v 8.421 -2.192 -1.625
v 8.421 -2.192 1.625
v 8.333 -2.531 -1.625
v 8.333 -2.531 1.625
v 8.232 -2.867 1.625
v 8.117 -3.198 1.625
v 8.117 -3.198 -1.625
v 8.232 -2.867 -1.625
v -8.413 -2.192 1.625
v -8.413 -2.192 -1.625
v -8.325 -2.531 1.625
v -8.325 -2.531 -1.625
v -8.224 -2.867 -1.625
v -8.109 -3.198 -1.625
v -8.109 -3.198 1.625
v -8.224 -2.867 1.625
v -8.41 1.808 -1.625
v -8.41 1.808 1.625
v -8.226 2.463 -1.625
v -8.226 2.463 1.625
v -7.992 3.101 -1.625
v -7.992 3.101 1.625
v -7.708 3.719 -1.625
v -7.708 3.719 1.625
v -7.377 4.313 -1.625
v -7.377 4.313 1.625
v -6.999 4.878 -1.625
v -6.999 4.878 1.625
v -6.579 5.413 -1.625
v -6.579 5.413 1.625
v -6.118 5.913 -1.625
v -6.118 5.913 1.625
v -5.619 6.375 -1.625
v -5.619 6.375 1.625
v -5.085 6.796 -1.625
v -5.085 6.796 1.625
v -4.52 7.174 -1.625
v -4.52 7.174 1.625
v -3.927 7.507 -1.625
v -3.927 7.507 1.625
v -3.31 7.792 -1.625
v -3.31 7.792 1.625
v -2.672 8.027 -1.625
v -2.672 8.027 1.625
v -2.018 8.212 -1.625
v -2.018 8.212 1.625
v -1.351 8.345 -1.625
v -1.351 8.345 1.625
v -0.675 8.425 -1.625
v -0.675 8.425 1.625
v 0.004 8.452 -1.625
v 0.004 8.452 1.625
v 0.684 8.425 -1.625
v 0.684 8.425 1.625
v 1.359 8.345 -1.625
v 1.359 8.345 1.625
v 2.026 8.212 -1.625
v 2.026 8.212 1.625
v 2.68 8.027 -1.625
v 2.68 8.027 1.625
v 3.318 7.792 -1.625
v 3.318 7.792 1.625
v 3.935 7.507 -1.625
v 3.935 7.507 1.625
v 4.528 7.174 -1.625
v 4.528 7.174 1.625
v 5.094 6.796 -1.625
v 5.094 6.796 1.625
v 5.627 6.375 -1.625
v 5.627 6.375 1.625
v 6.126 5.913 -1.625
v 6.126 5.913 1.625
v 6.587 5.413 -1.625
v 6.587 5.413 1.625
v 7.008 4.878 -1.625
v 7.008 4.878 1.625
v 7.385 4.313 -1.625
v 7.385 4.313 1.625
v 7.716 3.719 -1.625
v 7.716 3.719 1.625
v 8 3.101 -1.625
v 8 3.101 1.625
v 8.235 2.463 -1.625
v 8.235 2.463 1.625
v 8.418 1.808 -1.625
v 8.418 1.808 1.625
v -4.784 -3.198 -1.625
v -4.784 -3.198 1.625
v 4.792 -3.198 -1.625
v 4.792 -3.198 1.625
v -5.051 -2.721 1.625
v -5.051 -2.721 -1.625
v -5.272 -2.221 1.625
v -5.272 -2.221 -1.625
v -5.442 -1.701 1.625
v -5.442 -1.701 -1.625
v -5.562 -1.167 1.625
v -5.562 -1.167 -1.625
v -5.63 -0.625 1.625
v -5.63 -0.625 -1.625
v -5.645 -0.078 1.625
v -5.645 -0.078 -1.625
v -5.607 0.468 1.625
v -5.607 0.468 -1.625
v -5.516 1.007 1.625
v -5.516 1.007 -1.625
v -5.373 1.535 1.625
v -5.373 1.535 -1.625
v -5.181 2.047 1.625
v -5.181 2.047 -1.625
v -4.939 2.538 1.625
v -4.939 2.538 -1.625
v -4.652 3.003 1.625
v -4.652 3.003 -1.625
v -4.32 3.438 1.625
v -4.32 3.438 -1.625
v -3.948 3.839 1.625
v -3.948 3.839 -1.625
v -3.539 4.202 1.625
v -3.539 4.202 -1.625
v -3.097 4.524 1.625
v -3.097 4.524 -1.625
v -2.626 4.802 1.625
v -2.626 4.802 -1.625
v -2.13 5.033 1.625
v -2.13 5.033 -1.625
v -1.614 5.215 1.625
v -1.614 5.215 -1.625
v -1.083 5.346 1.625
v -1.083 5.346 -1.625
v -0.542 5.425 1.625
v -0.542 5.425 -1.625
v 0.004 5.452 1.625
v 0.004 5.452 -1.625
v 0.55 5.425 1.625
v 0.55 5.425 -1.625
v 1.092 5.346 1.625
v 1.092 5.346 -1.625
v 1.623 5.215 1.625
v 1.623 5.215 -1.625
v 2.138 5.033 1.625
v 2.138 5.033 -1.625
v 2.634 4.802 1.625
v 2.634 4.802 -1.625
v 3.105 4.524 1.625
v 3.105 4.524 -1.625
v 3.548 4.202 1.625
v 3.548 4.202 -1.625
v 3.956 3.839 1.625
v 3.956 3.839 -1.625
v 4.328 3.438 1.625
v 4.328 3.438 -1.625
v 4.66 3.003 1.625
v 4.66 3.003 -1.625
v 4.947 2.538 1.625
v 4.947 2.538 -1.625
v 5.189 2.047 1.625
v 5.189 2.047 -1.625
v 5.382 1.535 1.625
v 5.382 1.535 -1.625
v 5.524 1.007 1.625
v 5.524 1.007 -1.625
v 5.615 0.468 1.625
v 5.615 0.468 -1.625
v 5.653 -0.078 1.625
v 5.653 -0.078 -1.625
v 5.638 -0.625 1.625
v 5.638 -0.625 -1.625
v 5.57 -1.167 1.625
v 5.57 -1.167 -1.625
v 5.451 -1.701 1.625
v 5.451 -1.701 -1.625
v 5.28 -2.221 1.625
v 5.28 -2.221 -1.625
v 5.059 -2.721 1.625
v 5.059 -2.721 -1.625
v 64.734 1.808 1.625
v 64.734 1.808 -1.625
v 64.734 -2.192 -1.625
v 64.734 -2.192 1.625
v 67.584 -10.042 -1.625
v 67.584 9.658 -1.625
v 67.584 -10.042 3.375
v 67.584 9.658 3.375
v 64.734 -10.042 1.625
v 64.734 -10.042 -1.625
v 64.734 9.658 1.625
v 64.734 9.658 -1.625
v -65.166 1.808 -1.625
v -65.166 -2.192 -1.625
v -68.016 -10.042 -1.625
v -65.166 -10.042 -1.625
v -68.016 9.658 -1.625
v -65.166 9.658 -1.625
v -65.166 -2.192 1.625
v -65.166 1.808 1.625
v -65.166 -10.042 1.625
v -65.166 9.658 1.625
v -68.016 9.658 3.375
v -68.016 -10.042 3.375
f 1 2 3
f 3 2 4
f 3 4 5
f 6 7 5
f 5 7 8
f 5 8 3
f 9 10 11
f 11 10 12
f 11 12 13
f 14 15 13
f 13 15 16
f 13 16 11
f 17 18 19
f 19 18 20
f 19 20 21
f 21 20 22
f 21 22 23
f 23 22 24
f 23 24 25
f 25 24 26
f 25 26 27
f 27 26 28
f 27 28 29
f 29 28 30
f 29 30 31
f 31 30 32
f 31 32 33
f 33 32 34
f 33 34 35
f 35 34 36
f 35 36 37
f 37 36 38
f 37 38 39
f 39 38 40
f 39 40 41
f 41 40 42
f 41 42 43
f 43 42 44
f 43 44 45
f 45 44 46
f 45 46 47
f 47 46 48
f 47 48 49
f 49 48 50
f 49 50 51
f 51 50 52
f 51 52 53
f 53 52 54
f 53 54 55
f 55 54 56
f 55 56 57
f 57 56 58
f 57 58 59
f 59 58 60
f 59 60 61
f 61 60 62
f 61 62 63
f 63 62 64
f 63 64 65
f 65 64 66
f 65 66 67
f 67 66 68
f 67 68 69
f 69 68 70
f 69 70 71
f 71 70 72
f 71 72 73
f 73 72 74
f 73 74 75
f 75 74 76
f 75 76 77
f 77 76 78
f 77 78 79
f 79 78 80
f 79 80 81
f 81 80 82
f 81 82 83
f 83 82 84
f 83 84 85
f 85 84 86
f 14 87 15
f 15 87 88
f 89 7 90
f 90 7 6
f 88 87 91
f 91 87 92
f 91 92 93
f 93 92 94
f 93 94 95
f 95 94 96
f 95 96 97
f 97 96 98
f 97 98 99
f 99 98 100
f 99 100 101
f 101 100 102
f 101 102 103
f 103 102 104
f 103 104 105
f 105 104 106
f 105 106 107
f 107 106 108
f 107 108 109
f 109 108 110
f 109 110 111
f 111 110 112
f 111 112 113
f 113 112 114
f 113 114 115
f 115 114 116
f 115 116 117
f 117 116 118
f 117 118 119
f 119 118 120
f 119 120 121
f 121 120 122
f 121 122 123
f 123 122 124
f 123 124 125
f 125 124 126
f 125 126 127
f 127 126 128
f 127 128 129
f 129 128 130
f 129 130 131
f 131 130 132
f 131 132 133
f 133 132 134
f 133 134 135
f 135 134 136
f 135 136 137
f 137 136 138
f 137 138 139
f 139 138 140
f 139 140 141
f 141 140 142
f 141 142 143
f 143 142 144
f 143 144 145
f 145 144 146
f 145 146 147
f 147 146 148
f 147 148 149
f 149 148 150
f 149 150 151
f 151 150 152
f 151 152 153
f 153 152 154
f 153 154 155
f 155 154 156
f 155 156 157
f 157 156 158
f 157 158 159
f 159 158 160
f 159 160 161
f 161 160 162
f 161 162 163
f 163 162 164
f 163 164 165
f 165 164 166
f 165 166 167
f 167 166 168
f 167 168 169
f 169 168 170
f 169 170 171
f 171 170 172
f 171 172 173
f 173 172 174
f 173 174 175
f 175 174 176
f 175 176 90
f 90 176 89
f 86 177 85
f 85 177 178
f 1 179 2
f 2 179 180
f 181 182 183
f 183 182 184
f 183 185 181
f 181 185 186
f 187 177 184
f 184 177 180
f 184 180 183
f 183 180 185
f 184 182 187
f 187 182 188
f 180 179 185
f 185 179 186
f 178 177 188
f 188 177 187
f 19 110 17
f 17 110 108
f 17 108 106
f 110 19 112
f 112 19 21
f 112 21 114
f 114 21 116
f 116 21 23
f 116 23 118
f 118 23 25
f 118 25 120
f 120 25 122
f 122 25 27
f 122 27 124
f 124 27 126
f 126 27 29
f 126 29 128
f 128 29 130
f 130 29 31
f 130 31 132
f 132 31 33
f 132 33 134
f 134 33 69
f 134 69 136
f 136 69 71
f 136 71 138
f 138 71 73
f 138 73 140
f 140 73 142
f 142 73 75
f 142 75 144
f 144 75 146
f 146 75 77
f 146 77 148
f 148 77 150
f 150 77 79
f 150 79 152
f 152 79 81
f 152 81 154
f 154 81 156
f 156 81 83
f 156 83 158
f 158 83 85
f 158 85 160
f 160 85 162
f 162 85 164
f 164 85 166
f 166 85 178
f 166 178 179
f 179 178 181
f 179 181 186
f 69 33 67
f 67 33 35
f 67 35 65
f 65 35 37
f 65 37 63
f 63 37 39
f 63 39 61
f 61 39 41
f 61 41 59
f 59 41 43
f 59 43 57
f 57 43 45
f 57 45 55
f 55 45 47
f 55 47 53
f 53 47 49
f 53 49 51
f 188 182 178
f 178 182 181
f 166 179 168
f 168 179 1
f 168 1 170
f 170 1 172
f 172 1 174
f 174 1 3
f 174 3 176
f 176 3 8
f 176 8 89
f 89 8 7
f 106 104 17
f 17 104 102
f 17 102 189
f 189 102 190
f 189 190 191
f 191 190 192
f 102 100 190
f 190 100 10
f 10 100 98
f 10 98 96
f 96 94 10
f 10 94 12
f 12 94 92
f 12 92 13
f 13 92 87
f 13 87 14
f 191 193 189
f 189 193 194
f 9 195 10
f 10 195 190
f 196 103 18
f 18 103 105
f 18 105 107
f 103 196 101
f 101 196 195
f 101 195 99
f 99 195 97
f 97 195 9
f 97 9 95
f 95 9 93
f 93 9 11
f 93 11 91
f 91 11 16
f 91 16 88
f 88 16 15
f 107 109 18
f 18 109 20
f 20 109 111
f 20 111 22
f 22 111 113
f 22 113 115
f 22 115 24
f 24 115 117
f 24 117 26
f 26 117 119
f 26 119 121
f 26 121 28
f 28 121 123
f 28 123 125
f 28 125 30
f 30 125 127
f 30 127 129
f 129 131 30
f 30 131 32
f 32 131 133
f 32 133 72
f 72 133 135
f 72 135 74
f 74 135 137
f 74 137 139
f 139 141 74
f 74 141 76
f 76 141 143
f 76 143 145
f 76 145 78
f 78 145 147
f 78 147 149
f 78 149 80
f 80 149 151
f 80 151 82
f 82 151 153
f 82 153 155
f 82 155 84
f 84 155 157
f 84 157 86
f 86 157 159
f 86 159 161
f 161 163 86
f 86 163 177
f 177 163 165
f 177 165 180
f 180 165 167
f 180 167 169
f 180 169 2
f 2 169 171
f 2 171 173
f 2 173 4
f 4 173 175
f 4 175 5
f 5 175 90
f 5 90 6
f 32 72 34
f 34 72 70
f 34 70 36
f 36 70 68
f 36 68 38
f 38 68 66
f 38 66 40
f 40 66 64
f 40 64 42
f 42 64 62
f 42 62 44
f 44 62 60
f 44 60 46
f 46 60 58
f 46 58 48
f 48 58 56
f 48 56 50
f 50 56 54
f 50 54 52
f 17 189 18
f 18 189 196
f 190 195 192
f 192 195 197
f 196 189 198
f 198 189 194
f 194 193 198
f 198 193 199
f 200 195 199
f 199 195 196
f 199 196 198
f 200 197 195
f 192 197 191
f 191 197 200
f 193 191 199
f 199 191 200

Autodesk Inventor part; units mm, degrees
ref_plane "YZ Plane" through (0, 0, 0) normal (1, 0, 0) x (0, 1, 0)
ref_plane "XZ Plane" through (0, 0, 0) normal (0, 1, 0) x (-1, 0, 0)
ref_plane "XY Plane" through (0, 0, 0) normal (0, 0, 1) x (1, 0, 0)
sketch "Skizze1" plane through (0, 0, 0) normal (0, 0, 1) x (1, 0, 0)
  line L0 (-68.016, 1.808) -> (67.584, 1.808)
  line L1 (67.584, 1.808) -> (67.584, -2.192)
  line L2 (67.584, -2.192) -> (-68.016, -2.192)
  line L3 (-68.016, -2.192) -> (-68.016, 1.808)
  line L4 (-68.016, 1.808) -> (67.584, -2.192) construction
  line L5 (67.584, 1.808) -> (-68.016, -2.192) construction
  point P0 (0, 0)
  point P1 (-0.216, -0.192)
  point P2 (-0.216, -0.192)
  dimension "d0" = 135.6
  dimension "d1" = 4
extrude "Extrusion1" add sketch "Skizze1" along normal mid plane 3.25
ref_plane "Arbeitsebene1" through (-68.016, -0.192, 1.625) normal (0, -1, 0) x (1, 0, 0)
sketch "Skizze2" plane through (-68.016, -0.192, 1.625) normal (0, -1, 0) x (1, 0, 0)
  line L0 (0, -3.25) -> (0, 0) projected
  line L1 (0, -3.25) -> (135.6, -3.25) projected
  line L2 (0, 0) -> (2.85, 0)
  line L3 (2.85, 0) -> (2.85, -3.25)
  line L4 (2.85, -3.25) -> (0, -3.25)
  line L5 (0, -3.25) -> (0, 0)
  line L6 (0, 0) -> (0, 1.75)
  line L7 (0, 1.75) -> (2.85, 0)
  line L8 (135.6, -3.25) -> (135.6, 0) projected
  line L9 (135.6, 0) -> (132.75, 0)
  line L10 (132.75, 0) -> (132.75, -3.25)
  line L11 (132.75, -3.25) -> (135.6, -3.25)
  line L12 (135.6, -3.25) -> (135.6, 0)
  line L13 (135.6, 0) -> (135.6, 1.75)
  line L14 (135.6, 1.75) -> (132.75, 0)
  point P0 (68.016, -1.625)
  dimension "d4" = 2.85
  dimension "d5" = 1.75
  dimension "d6" = 2.85
extrude "Extrusion2" add sketch "Skizze2" along normal mid plane 19.7
sketch "Skizze3" plane through (0, 0, 1.625) normal (0, 0, 1) x (1, 0, 0)
  circle A0 centre (0, 0) radius 7.575
  dimension "d9" = 15.15
extrude "Extrusion3" cut sketch "Skizze3" against normal through all
sketch "Skizze4" plane through (0, 0, -1.625) normal (0, 0, -1) x (-1, 0, 0)
  circle A0 centre (-0.0041, -0.1983) radius 8.65
  circle A1 centre (-0.0041, -0.1983) radius 5.65
  line L0 (10.587, -3.1983) -> (-10.6177, -3.1983)
  point P0 (-0.0041, -0.1983)
  point P1 (-8.1172, -3.1983)
  point P2 (-4.7918, -3.1983)
  point P3 (4.7837, -3.1983)
  point P4 (8.109, -3.1983)
  dimension "d27" = 11.3
  dimension "d28" = 17.3
  dimension "d29" = 3
extrude "Extrusion4" add sketch "Skizze4" against normal blind 3.25 contours A0 L0 A1 picked at (7.4994, 0.9742)
equation "\"d28\" = d30"
equation "\"d30\" = 17.3"
properties part number "2024_08_23_Holder_GC_vial"
